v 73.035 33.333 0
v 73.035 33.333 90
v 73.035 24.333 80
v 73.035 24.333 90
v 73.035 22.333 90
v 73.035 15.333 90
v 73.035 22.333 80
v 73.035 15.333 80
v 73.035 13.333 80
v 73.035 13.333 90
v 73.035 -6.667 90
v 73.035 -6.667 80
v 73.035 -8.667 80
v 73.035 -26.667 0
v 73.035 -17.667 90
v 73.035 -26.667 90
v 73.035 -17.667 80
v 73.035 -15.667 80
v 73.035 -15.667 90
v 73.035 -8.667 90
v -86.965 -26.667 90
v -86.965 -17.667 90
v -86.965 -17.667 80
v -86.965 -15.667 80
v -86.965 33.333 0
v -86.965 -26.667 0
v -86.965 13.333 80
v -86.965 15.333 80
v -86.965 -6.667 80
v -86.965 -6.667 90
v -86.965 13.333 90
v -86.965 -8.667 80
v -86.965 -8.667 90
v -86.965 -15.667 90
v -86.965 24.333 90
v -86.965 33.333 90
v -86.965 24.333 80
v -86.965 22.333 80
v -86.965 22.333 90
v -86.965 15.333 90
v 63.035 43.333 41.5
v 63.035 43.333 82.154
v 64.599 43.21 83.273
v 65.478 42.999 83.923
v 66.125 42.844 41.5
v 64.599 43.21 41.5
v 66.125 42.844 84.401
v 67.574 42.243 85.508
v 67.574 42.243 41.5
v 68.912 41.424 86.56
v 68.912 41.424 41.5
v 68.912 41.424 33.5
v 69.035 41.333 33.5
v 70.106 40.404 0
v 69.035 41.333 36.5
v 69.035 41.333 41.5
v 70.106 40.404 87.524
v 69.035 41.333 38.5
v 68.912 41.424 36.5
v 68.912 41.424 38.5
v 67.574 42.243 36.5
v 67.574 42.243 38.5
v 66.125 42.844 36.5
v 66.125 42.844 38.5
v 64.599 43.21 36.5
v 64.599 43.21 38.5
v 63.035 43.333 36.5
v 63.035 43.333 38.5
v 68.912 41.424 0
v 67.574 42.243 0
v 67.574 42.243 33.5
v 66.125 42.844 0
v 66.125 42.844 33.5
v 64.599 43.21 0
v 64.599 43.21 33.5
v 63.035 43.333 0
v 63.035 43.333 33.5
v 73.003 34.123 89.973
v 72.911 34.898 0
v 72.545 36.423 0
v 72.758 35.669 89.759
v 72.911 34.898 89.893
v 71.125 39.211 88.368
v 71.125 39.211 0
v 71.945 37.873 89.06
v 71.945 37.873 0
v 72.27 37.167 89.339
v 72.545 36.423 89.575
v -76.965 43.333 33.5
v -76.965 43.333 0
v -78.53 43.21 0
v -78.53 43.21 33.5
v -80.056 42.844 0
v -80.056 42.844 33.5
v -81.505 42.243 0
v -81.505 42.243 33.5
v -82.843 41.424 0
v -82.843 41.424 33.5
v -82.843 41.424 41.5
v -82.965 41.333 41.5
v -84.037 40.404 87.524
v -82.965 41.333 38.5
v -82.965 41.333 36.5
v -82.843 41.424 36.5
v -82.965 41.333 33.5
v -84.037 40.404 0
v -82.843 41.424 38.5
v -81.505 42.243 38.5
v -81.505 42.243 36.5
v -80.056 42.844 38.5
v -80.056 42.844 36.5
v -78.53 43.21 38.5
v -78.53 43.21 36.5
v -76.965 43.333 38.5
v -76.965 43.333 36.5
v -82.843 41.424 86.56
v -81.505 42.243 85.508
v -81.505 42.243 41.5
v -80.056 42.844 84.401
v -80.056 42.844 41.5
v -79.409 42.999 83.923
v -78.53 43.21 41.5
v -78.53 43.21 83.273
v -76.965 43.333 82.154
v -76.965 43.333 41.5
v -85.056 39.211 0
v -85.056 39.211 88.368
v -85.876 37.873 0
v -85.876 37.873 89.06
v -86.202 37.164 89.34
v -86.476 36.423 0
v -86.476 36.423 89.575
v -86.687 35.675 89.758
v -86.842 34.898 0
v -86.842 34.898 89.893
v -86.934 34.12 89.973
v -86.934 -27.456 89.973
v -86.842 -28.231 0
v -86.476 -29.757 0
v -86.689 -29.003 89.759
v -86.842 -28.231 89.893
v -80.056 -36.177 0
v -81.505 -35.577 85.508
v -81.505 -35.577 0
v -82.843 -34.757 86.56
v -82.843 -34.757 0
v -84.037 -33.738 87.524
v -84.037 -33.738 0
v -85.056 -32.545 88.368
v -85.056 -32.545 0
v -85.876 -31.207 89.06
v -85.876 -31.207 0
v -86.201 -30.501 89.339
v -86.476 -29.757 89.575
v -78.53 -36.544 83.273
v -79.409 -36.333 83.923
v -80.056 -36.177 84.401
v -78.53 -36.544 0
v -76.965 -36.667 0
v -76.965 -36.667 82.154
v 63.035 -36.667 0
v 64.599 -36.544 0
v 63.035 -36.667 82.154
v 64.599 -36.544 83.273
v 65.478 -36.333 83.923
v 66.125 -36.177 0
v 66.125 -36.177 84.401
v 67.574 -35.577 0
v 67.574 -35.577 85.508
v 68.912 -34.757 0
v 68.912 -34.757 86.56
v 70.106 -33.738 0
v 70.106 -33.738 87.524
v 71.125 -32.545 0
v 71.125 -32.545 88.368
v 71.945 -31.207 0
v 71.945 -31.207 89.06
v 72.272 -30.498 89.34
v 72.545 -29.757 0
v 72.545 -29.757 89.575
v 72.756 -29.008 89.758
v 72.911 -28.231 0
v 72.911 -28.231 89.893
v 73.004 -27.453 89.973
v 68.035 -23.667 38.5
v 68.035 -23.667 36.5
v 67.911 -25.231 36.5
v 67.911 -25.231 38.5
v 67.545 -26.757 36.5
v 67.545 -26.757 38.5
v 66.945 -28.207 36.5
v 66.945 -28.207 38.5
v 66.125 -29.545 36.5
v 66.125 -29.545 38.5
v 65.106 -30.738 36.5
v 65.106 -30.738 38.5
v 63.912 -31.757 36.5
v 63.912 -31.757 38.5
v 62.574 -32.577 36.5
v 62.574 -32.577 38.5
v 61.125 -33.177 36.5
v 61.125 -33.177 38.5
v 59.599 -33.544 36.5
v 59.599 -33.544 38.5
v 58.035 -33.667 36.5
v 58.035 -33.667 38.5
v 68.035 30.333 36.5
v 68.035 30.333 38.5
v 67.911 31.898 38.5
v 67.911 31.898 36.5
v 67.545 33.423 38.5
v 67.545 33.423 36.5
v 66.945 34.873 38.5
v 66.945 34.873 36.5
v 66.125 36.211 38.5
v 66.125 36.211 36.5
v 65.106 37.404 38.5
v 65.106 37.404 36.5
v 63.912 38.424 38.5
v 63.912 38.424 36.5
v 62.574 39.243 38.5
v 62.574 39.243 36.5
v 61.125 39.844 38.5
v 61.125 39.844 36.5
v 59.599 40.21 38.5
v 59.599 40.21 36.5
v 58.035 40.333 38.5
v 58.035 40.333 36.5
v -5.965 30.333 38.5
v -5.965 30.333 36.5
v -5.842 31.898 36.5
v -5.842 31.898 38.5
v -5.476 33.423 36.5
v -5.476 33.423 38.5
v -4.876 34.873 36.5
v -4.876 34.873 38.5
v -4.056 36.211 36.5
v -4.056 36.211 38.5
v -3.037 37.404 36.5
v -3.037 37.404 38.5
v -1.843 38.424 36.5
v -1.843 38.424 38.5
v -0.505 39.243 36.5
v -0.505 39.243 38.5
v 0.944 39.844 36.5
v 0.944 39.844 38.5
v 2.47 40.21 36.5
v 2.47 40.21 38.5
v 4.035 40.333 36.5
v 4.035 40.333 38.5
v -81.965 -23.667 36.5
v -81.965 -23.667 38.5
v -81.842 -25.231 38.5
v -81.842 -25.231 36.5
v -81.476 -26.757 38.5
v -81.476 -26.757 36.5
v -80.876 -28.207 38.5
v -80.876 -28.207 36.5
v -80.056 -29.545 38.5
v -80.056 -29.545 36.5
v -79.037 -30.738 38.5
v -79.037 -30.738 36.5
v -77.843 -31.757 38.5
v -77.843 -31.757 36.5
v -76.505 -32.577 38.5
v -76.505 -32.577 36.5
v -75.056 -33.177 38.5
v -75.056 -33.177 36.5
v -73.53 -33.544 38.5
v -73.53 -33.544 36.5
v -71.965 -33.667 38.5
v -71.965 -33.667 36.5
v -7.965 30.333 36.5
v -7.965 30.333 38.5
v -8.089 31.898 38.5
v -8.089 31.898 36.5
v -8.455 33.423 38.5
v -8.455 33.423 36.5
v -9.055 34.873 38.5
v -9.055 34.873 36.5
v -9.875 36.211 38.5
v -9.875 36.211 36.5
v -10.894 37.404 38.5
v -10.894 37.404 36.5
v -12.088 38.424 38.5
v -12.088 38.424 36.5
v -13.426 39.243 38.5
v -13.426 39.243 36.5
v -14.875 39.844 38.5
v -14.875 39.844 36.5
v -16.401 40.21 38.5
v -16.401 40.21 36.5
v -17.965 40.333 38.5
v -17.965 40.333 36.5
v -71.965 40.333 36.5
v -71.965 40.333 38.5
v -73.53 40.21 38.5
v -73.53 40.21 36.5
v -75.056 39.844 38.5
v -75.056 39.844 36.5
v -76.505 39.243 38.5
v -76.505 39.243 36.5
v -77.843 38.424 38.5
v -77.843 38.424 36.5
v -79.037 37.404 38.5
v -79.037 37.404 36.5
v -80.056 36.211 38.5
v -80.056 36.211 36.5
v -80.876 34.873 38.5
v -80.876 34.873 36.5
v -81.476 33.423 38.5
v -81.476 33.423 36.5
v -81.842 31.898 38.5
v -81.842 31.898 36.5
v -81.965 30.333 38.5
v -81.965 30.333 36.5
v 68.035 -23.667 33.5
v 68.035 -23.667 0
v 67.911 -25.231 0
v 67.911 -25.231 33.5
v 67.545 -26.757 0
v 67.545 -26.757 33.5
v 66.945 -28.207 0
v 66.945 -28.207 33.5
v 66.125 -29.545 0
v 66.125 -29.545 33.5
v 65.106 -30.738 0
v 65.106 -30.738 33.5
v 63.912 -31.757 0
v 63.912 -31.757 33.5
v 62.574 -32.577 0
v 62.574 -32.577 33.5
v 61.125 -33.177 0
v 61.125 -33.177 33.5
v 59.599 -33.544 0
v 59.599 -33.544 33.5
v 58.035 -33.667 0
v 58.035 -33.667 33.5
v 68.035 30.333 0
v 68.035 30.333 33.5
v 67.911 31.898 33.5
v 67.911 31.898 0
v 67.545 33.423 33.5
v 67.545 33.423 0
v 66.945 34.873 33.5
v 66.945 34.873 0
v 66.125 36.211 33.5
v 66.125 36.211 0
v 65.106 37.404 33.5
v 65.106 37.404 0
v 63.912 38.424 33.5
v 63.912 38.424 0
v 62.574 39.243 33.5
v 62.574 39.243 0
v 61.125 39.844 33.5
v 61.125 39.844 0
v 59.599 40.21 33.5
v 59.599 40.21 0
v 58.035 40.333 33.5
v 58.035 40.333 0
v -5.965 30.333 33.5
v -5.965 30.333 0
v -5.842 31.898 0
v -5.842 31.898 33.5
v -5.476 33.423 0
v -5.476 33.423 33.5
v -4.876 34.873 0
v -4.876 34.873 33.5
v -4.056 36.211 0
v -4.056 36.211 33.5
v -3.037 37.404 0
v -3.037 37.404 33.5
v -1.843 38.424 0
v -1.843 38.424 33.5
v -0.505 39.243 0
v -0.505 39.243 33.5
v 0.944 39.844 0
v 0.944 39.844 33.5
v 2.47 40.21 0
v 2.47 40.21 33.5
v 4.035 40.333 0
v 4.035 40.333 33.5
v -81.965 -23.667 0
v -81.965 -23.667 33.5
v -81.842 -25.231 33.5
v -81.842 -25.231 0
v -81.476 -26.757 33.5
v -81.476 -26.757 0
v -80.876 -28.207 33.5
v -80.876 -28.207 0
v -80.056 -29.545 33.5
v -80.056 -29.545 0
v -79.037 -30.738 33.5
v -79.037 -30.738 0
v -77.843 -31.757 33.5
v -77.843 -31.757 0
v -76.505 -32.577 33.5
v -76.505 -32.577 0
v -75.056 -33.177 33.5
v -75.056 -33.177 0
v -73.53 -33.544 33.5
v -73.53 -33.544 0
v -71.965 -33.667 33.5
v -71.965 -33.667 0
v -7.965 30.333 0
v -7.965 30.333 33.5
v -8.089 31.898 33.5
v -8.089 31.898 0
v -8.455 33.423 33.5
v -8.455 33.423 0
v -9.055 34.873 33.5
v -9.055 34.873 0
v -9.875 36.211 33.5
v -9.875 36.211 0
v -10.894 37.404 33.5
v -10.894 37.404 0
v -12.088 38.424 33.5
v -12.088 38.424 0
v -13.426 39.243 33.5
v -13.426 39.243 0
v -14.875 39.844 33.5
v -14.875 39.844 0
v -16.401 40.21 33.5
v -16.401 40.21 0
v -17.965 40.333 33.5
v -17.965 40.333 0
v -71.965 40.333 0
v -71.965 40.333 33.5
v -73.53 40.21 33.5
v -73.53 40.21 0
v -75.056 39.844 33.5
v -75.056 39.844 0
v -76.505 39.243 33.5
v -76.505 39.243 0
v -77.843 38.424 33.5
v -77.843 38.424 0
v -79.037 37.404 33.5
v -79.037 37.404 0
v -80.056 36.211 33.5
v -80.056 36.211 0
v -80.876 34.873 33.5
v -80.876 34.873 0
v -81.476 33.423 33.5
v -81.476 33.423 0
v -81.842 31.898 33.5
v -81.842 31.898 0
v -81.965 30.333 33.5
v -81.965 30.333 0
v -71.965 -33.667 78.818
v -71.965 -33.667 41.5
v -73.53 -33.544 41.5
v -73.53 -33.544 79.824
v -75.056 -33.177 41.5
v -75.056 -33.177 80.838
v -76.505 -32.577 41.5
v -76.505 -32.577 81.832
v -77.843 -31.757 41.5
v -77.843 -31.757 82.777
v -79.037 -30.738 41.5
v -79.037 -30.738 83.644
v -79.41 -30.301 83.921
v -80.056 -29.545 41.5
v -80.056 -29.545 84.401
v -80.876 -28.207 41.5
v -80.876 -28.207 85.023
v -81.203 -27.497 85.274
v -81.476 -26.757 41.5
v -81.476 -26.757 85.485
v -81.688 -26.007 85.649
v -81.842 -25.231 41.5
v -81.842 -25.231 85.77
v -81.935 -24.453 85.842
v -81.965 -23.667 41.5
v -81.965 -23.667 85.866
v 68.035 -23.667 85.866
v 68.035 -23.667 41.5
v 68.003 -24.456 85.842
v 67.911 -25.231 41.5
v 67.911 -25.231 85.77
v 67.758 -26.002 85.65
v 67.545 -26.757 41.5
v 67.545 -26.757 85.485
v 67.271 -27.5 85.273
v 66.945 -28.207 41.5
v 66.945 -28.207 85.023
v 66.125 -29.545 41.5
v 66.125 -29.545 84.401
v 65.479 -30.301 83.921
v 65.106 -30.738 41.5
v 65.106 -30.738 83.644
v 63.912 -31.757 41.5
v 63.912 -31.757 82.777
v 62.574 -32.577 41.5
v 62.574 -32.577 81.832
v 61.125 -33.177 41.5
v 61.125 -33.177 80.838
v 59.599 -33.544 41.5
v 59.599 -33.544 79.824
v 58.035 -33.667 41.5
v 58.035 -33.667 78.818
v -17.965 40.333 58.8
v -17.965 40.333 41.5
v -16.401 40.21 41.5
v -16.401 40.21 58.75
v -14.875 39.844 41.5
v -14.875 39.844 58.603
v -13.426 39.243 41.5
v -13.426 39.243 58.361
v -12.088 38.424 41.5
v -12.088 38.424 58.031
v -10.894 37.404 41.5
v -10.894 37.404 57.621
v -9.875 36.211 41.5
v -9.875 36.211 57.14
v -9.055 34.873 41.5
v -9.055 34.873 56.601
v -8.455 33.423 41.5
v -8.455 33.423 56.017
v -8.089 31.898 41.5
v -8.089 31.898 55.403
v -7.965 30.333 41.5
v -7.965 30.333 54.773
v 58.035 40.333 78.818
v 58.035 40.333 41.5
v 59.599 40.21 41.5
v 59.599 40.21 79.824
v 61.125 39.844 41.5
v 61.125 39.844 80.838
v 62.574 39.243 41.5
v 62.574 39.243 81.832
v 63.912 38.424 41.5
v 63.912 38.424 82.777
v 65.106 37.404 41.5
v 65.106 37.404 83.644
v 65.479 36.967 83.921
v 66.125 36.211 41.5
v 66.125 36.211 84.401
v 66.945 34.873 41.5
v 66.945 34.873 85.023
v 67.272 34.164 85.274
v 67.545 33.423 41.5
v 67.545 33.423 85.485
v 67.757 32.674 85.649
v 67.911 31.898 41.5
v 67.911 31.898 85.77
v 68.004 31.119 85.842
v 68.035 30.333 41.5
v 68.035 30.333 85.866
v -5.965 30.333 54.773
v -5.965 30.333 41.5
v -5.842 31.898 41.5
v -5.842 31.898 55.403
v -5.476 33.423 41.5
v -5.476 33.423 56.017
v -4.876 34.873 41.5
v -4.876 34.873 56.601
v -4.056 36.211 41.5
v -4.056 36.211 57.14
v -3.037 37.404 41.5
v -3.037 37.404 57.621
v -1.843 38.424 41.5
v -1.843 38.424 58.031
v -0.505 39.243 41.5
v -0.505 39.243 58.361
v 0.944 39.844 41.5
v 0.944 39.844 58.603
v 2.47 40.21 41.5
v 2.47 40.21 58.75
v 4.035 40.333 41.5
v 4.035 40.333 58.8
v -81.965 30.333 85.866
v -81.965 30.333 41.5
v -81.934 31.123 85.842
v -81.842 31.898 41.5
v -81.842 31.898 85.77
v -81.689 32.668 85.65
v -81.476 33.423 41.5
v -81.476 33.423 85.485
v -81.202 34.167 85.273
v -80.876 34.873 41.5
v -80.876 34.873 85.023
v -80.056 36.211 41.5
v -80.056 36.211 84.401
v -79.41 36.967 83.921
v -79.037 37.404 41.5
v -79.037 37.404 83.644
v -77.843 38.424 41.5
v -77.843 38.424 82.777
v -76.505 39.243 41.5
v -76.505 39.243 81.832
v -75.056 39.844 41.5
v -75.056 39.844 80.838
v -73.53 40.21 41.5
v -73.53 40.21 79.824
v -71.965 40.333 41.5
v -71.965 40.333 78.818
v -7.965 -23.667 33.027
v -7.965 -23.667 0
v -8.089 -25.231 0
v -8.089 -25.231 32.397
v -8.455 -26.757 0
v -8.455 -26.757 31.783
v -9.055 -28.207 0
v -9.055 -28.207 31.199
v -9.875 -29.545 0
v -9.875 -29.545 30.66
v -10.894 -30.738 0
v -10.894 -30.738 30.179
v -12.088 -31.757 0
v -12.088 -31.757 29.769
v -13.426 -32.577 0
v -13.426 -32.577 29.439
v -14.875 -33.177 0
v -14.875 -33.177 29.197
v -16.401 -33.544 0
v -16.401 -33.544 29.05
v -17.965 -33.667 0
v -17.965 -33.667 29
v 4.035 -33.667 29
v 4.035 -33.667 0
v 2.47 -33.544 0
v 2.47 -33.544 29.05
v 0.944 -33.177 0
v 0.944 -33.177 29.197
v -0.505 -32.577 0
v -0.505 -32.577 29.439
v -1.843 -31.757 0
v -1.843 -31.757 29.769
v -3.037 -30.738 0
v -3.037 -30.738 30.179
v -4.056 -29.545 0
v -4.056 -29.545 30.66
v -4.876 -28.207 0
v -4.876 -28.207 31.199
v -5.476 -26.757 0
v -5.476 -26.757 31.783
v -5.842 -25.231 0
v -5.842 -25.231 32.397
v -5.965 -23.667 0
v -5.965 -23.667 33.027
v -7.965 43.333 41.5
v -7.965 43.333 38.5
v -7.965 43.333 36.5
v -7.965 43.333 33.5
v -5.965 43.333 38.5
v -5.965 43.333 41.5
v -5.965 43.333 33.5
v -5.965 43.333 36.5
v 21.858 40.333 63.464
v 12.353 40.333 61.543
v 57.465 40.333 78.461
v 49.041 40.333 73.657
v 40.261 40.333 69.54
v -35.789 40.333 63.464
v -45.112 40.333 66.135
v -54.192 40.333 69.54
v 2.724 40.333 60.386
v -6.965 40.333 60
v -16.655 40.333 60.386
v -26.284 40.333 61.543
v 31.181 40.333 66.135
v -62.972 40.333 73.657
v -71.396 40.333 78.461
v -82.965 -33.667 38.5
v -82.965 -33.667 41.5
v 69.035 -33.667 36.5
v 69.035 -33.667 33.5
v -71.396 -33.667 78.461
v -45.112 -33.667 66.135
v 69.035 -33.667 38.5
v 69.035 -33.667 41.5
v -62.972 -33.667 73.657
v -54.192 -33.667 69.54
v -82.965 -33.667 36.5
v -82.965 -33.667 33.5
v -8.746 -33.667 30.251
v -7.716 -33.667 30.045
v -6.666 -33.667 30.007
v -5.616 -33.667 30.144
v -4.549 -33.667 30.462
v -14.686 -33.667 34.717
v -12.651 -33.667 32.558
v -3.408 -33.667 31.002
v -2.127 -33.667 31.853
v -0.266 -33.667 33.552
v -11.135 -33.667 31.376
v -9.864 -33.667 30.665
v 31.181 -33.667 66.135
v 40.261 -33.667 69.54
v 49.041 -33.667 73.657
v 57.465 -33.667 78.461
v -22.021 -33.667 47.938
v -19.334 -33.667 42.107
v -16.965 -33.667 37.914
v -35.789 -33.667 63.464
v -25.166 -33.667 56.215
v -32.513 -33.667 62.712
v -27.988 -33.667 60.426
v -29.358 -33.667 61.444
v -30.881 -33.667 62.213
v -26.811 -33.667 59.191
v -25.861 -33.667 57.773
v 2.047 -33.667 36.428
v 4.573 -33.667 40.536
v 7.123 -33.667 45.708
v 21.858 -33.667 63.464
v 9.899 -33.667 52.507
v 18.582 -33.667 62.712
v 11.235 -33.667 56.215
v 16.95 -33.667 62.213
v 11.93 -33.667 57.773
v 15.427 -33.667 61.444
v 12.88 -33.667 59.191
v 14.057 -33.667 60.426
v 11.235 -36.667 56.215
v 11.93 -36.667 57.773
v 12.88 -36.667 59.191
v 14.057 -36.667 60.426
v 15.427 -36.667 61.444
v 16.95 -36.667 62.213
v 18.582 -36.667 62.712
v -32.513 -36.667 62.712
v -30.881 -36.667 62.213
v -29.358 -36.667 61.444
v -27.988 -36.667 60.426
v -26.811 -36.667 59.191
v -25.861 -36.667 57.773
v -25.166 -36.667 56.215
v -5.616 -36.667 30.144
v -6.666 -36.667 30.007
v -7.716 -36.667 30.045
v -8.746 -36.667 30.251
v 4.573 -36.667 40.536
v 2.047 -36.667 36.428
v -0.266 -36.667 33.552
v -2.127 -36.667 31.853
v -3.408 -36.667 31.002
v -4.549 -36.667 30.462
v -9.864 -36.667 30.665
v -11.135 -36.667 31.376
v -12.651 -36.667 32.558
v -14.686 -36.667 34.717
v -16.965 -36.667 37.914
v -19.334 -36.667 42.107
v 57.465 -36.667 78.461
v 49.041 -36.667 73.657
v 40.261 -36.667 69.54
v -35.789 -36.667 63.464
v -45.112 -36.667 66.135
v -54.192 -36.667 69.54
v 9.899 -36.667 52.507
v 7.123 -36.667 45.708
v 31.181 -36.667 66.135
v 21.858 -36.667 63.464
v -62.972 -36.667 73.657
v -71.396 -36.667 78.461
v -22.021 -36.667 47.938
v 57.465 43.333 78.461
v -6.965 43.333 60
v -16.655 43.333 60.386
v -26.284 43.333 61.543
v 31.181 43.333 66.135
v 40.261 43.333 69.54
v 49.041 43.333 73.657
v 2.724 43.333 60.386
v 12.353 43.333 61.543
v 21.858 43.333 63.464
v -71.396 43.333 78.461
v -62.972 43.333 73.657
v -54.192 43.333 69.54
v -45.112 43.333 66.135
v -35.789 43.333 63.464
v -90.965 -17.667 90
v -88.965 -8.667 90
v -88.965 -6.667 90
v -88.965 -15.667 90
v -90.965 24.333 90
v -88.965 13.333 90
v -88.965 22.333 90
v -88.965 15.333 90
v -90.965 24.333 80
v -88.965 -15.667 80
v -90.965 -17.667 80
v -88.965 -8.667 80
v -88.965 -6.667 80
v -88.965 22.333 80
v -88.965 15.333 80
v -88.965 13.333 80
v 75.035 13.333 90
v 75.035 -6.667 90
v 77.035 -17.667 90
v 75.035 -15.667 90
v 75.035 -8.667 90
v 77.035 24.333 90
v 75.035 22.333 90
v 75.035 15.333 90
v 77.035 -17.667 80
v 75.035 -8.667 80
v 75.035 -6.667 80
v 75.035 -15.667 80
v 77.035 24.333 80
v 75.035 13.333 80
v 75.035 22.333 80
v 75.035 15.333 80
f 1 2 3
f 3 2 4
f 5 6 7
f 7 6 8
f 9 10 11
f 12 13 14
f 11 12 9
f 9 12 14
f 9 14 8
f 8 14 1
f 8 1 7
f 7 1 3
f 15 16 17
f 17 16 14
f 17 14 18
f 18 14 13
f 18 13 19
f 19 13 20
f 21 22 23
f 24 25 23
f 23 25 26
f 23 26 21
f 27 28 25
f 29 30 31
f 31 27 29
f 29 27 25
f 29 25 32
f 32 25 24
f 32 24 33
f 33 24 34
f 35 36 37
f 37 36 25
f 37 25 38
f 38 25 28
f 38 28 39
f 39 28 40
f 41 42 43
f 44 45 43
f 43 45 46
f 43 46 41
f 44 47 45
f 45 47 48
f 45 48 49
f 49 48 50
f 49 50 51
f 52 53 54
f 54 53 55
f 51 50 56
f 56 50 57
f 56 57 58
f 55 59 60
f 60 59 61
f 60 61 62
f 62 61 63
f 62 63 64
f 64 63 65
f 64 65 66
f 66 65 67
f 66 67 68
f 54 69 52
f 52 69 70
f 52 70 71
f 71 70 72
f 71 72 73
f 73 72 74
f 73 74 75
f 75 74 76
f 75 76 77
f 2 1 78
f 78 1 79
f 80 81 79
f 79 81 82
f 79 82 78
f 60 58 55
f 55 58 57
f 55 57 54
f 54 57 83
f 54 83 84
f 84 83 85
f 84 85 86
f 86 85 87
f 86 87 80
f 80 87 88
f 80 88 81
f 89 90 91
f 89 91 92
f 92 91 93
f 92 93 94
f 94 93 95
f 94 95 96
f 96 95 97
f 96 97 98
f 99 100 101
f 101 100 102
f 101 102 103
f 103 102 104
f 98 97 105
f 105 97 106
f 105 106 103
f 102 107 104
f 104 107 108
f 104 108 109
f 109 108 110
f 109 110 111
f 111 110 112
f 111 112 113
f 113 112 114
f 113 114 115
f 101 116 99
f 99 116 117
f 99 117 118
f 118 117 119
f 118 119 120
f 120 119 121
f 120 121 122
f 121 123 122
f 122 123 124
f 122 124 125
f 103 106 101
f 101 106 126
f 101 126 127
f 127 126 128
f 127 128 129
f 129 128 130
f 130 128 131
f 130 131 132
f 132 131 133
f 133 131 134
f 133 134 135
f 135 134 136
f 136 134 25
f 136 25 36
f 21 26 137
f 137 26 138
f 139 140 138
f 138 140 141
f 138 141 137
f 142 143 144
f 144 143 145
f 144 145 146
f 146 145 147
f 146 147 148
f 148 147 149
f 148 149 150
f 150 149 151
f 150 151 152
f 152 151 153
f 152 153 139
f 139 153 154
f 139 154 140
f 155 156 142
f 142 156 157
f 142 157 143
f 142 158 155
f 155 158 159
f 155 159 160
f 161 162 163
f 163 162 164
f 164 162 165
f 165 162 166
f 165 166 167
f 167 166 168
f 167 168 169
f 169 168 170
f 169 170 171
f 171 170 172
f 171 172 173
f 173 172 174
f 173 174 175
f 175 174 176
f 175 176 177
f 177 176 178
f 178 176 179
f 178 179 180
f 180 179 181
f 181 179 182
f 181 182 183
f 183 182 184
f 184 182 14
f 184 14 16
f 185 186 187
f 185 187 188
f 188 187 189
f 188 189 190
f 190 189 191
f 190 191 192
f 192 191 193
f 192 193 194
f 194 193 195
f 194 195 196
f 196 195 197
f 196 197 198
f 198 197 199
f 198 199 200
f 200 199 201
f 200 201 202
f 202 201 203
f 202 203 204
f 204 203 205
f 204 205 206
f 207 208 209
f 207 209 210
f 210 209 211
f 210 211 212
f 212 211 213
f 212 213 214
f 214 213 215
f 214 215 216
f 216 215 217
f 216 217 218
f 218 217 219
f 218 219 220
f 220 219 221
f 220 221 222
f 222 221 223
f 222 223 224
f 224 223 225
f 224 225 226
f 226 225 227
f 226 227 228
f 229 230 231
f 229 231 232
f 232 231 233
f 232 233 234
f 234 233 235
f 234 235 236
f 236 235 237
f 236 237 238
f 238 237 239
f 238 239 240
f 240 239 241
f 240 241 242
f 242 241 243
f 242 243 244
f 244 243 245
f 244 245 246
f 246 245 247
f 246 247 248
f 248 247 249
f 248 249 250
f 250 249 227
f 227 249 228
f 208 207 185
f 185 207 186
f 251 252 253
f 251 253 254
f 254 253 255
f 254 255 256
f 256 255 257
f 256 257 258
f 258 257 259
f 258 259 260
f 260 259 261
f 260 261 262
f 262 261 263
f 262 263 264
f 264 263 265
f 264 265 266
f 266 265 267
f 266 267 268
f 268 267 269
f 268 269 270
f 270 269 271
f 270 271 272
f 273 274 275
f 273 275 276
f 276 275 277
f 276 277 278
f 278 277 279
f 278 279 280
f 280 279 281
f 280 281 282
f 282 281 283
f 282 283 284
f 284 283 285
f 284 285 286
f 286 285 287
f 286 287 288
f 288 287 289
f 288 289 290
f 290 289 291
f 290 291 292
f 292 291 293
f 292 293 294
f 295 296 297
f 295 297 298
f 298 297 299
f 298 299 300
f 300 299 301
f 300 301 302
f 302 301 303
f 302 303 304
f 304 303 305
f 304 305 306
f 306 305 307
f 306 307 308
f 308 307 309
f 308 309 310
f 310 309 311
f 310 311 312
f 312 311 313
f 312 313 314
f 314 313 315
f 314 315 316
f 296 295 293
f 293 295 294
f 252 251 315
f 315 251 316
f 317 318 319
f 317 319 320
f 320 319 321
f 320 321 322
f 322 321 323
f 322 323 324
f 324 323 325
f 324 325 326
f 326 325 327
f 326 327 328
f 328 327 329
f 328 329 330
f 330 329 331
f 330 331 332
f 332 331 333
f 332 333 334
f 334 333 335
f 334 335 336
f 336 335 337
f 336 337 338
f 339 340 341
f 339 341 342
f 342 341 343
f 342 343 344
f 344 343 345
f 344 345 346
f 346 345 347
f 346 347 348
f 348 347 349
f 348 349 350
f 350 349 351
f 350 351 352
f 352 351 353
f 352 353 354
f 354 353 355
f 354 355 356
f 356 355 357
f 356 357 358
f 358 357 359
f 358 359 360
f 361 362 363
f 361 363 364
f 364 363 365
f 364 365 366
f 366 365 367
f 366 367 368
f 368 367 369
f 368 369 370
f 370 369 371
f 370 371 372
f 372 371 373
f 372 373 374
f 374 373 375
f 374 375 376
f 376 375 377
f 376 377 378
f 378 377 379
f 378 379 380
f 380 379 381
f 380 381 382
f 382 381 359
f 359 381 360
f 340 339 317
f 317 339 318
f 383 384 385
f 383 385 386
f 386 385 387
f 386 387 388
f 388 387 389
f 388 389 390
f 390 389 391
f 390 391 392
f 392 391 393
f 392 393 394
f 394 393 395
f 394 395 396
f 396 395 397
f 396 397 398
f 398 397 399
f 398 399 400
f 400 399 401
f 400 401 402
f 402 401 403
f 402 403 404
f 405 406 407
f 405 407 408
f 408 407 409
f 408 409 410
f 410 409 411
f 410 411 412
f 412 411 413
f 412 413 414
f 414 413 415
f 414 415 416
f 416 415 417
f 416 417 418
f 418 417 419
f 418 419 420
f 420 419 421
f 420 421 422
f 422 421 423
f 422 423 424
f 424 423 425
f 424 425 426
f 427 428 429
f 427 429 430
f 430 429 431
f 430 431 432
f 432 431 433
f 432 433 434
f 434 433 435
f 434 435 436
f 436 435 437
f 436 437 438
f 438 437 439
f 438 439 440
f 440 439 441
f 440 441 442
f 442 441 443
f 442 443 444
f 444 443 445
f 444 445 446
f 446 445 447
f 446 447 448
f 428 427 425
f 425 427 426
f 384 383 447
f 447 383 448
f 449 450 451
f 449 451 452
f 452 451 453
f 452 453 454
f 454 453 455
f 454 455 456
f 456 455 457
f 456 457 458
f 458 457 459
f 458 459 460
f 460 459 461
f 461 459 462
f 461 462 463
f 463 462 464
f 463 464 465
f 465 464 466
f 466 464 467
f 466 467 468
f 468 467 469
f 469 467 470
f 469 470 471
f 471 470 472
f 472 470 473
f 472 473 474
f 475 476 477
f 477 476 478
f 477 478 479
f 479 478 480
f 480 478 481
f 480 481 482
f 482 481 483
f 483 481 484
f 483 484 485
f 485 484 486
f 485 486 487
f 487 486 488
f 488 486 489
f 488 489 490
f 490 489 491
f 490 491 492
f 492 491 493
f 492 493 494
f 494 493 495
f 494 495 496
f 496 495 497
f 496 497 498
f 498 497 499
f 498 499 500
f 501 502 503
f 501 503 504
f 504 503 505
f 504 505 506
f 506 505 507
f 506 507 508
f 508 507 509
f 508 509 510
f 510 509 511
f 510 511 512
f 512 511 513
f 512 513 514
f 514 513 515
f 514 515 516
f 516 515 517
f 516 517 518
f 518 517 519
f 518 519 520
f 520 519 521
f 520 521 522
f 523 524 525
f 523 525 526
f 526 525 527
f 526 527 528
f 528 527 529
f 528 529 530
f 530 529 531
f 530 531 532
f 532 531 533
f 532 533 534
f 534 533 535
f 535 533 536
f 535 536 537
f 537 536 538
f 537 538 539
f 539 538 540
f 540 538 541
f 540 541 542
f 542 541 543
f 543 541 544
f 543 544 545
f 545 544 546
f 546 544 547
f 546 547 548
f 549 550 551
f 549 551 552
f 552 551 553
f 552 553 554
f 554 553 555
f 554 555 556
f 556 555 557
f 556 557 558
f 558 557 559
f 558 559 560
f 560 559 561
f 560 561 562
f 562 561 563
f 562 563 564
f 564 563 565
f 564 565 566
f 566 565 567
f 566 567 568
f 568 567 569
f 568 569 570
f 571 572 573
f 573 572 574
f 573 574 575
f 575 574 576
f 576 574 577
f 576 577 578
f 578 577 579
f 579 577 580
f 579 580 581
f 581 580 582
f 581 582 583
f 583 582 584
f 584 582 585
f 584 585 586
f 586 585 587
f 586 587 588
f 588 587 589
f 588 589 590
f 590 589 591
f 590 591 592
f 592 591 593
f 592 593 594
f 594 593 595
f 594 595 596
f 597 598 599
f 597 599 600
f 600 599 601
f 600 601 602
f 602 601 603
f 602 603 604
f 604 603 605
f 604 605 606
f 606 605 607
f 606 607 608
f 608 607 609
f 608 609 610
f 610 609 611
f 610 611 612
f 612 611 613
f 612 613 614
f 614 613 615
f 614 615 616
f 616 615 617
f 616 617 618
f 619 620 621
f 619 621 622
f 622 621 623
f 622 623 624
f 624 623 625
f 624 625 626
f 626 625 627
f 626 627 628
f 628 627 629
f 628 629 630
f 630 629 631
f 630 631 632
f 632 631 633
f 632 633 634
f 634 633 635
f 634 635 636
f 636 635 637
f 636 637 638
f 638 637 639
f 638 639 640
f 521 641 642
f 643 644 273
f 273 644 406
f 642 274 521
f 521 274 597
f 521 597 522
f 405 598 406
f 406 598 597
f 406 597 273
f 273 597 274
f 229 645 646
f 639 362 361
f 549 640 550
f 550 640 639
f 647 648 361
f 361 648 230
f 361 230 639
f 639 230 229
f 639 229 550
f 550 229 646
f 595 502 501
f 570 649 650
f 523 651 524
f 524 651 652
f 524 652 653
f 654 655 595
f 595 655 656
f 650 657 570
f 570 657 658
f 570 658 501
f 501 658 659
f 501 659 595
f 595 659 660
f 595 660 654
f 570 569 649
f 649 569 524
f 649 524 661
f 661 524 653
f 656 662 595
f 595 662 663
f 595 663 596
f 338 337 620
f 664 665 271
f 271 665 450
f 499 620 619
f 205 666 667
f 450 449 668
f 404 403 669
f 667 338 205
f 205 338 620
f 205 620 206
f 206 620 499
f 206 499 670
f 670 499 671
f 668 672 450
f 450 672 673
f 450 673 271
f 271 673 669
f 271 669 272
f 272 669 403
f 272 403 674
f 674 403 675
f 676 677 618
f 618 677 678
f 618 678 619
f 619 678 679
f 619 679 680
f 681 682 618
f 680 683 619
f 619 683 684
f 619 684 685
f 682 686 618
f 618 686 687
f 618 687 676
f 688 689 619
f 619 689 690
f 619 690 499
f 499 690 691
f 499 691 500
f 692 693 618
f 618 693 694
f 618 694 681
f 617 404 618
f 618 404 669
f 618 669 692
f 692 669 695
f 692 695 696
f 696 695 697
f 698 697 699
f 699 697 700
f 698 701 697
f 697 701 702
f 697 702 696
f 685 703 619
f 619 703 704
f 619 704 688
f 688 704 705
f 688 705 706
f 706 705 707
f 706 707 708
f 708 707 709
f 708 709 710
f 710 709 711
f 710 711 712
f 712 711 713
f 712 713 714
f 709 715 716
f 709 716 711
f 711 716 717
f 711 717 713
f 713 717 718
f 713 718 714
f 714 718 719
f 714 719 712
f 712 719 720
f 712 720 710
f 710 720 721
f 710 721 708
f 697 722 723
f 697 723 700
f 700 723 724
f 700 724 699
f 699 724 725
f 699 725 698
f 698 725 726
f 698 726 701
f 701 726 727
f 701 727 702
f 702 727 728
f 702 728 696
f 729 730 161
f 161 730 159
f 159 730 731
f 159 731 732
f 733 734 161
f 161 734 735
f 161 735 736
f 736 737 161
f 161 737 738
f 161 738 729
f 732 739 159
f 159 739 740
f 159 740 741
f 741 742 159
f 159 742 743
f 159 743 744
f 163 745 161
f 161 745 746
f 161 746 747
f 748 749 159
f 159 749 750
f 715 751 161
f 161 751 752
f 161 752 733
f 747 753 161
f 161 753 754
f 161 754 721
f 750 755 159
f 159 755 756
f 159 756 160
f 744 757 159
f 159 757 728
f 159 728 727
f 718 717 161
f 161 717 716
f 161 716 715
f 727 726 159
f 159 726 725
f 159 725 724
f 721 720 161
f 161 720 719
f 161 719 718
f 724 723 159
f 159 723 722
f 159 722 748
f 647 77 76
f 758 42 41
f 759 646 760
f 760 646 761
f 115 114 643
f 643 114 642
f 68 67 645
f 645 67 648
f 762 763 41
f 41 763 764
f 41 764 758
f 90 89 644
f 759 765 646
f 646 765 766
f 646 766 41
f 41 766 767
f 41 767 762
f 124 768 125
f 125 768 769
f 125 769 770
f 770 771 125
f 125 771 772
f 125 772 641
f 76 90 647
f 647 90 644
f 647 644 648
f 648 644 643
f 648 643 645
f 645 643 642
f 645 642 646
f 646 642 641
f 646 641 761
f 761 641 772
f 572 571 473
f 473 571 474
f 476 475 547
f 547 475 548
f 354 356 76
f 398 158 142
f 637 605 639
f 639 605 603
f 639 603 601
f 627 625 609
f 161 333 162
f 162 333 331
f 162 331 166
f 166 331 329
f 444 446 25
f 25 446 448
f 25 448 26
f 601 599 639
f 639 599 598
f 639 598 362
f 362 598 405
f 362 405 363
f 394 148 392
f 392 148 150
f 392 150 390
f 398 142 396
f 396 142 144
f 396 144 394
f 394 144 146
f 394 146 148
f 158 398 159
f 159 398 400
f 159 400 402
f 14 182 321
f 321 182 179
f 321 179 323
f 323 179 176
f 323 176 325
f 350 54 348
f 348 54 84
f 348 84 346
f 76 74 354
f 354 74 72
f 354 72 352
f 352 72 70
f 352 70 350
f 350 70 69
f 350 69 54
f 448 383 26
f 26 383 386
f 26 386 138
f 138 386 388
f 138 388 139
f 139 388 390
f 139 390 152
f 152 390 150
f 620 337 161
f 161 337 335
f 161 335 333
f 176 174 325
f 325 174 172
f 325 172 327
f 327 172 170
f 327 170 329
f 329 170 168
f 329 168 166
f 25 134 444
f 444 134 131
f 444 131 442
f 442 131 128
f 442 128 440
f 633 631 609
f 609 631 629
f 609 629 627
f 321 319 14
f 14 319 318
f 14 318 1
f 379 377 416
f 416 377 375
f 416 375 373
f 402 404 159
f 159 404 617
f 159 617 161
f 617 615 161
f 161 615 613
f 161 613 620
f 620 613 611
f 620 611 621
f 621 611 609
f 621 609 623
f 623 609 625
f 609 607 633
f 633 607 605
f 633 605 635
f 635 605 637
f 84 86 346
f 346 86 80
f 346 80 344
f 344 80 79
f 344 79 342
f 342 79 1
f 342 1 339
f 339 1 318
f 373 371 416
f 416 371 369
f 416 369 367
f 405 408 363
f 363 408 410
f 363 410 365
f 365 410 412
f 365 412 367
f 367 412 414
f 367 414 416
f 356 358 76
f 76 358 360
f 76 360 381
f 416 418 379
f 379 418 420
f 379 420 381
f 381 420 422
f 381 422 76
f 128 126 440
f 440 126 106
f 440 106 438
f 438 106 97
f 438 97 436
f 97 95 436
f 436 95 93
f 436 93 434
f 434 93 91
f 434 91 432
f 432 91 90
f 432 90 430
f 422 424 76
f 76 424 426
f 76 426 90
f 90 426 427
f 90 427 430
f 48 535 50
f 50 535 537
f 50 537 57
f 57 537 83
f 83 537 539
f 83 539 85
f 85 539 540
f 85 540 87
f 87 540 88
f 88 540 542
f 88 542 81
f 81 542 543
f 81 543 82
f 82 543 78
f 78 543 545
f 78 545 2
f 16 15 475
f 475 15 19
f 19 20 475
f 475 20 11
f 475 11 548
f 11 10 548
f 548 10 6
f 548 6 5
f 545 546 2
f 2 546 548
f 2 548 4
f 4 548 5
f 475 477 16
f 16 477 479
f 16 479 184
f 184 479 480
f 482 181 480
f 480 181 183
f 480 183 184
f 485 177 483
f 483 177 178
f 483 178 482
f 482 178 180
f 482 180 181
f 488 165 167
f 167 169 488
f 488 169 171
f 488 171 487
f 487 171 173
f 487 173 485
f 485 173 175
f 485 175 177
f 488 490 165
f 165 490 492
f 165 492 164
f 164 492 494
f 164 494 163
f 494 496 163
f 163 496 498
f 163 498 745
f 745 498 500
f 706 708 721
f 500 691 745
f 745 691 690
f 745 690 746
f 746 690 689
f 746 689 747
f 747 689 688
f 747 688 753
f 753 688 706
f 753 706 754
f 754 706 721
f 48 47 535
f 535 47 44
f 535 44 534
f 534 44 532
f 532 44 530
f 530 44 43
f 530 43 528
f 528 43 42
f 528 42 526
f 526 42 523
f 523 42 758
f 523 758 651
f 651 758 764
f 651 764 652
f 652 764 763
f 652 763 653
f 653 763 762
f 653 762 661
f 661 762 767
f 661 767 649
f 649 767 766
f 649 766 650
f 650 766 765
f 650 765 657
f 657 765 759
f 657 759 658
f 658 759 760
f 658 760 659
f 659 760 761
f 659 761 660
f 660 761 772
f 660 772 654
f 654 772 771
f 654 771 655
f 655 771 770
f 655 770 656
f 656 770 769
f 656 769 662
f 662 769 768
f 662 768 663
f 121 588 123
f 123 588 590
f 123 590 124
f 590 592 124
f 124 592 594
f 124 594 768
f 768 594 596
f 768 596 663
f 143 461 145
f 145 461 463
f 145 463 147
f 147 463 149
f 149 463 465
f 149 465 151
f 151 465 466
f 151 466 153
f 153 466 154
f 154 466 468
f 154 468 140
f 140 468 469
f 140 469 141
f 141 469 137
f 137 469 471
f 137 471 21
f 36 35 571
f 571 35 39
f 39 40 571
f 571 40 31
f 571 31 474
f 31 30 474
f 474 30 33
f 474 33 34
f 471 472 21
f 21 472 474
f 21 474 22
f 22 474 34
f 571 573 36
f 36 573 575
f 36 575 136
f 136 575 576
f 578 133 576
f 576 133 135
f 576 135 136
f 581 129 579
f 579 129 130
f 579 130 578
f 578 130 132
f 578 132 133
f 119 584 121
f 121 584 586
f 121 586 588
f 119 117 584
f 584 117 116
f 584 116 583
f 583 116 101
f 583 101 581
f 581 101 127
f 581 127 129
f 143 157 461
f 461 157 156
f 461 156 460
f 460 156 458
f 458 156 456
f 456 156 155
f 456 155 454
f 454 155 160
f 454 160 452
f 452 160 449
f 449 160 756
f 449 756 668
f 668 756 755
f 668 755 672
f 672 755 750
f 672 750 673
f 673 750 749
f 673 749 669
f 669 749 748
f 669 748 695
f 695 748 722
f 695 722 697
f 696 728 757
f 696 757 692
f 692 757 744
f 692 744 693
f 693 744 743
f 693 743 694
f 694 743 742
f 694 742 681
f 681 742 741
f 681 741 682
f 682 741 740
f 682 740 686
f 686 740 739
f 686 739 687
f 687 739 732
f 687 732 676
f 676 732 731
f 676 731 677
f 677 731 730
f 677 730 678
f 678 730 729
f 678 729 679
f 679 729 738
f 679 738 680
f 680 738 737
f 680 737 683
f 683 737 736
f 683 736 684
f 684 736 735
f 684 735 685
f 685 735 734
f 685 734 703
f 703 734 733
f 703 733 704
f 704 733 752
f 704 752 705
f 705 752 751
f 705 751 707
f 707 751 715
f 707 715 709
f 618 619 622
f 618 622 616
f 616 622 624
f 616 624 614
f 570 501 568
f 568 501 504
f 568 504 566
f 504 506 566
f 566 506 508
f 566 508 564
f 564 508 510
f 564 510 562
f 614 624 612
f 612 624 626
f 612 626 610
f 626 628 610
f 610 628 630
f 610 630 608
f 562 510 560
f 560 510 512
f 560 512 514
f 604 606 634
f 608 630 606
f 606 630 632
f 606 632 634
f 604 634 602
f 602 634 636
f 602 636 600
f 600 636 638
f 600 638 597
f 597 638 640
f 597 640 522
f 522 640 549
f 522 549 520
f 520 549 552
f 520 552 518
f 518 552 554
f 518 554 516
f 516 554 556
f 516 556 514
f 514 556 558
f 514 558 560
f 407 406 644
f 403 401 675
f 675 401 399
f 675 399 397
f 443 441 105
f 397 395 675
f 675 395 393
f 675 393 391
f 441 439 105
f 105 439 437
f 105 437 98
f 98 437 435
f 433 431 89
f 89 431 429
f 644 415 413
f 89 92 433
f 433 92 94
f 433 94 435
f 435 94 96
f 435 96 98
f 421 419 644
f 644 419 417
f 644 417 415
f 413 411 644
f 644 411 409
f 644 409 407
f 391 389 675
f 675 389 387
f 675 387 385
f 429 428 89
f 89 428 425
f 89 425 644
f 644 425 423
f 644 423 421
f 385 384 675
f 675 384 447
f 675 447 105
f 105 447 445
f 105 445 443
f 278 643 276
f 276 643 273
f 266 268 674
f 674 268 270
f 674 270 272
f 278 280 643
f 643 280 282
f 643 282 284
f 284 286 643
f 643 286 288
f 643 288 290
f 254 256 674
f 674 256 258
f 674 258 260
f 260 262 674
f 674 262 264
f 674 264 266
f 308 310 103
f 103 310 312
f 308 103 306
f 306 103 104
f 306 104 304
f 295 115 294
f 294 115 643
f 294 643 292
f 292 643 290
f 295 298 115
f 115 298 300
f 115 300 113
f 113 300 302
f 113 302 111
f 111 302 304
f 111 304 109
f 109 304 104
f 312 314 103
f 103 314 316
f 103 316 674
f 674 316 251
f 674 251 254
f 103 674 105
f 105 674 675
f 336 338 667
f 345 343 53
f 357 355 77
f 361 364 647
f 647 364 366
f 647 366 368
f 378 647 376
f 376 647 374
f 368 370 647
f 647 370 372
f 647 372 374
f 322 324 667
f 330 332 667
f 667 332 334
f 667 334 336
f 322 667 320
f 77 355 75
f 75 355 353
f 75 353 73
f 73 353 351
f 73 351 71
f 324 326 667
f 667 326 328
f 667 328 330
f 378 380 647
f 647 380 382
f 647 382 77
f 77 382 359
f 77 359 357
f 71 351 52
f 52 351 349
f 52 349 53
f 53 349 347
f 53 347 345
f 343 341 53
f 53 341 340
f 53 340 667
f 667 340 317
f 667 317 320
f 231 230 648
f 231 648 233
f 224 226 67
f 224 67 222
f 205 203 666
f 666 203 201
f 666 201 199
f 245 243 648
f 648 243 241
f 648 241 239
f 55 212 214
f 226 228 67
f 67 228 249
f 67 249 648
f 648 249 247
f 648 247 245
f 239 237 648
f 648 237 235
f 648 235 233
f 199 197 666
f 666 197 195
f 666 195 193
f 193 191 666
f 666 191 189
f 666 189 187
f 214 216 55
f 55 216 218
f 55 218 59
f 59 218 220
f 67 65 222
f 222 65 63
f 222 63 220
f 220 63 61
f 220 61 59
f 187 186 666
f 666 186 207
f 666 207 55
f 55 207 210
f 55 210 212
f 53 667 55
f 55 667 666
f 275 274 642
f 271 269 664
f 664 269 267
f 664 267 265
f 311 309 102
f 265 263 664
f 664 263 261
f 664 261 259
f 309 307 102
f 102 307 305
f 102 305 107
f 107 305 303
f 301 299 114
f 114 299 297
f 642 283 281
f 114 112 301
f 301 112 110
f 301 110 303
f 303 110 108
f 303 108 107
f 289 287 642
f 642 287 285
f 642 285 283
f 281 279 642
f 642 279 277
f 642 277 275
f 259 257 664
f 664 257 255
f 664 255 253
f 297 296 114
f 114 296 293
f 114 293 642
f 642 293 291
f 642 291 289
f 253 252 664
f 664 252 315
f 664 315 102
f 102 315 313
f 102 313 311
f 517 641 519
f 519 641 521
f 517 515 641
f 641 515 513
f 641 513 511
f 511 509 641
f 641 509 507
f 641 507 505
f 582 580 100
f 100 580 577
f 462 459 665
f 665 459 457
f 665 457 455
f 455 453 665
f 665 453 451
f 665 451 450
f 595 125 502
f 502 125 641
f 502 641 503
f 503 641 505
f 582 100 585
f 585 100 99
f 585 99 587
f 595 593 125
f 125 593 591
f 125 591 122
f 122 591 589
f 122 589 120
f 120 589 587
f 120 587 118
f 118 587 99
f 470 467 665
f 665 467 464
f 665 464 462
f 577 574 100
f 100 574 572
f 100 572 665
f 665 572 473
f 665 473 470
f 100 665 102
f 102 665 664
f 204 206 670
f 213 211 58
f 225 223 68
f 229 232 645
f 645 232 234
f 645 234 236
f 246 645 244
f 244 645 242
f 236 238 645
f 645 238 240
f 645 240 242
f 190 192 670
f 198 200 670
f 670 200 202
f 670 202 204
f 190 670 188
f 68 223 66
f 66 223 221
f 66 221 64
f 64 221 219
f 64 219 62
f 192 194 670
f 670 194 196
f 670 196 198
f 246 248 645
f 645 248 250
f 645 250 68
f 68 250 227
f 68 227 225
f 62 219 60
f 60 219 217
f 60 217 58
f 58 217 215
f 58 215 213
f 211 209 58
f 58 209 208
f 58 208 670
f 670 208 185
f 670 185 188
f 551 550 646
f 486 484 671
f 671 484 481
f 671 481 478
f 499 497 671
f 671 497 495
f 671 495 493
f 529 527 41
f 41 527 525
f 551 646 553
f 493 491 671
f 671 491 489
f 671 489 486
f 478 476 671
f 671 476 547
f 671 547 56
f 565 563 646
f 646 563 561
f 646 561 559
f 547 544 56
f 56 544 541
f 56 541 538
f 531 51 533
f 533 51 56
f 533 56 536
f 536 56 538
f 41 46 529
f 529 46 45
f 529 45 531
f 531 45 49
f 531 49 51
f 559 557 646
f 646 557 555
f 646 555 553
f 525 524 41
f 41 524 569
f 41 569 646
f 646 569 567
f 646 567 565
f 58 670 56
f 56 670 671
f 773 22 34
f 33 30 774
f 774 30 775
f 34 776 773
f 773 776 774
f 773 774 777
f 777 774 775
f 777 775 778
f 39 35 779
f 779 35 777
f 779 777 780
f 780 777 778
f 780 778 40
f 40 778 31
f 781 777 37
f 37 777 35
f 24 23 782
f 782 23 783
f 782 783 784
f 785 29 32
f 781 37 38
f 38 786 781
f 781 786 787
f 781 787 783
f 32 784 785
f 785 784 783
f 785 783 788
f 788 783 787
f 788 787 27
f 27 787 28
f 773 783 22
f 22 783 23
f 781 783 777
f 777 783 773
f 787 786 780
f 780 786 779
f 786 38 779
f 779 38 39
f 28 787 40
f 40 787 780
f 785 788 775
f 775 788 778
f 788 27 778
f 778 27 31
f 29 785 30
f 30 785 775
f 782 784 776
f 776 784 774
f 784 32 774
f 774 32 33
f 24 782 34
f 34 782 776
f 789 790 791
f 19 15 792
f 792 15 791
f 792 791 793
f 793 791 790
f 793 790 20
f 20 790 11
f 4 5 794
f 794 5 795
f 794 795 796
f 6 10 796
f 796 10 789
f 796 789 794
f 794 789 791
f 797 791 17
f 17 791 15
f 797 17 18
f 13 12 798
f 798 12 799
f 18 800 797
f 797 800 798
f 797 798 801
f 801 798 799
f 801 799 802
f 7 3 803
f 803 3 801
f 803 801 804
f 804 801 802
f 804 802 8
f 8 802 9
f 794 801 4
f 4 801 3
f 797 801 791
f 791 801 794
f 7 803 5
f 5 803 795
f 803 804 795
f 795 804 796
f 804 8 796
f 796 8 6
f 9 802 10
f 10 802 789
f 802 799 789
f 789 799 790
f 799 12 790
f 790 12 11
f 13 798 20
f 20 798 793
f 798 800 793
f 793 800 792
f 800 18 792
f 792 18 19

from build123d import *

# Parameters (mm, degrees)
ESBO_O1_W                  = 160
ESBO_O1_H                  = 80
RESSALTO_EXTRUS_O1_DEPTH   = 90
ESBO_O2_W                  = 150
ESBO_O2_H                  = 74
CORTE_EXTRUS_O1_DEPTH      = 90
CORTE_EXTRUS_O2_DEPTH      = 90
CORTE_EXTRUS_O3_START      = -3
CORTE_EXTRUS_O3_DEPTH      = 152.536161673
FILETE1_R                  = 10
FILETE2_R                  = 10
RESSALTO_EXTRUS_O3_DEPTH   = 2
ESBO_O14_W                 = 40
ESBO_O14_H                 = 30
RESSALTO_EXTRUS_O10_DEPTH  = 2
FILETE15_R                 = 10
FILETE16_R                 = 10
CORTE_EXTRUS_O8_DEPTH      = 20
CORTE_EXTRUS_O8_DEPTH_BACK = 20
FILETE17_R                 = 10
FILETE18_R                 = 10
FILETE19_R                 = 10
FILETE20_R                 = 10
FILETE21_R                 = 10
FILETE22_R                 = 10
ESBO_O8_W                  = 75
ESBO_O8_H                  = 3
CORTE_EXTRUS_O9_DEPTH      = 77
FILETE24_R                 = 10
FILETE25_R                 = 10
FILETE26_R                 = 10
FILETE27_R                 = 10
ESBO_O9_W                  = 10
ESBO_O9_H                  = 42
RESSALTO_EXTRUS_O11_DEPTH  = 4
ESBO_O17_W                 = 2
ESBO_O17_H                 = 7
ESBO_O17_H_2               = 20
CORTE_EXTRUS_O10_DEPTH     = 10
ESBO_O18_W                 = 10
ESBO_O18_H                 = 42
RESSALTO_EXTRUS_O12_DEPTH  = 4
ESBO_O19_W                 = 2
ESBO_O19_H                 = 7
ESBO_O19_H_2               = 20
CORTE_EXTRUS_O11_DEPTH     = 10


with BuildPart() as part:
    # Esboço1 → Ressalto-extrusão1 (new body)
    with BuildSketch(Plane.XY):
        with Locations((-6.965460526, 3.333333333)):
            Rectangle(ESBO_O1_W, ESBO_O1_H)
    extrude(amount=RESSALTO_EXTRUS_O1_DEPTH)

    # Esboço2 → Corte-extrusão1 (cut)
    with BuildSketch(Plane.XY.offset(90)):
        with Locations((-6.965460526, 3.333333333)):
            Rectangle(ESBO_O2_W, ESBO_O2_H)
    extrude(amount=-CORTE_EXTRUS_O1_DEPTH, mode=Mode.SUBTRACT)

    # Esboço3 → Corte-extrusão2 (cut)
    with BuildSketch(Plane(origin=(0, 43.333333333, 0), x_dir=(1, 0, 0), z_dir=(0, 1, 0))):
        with BuildLine():
            ThreePointArc((-6.965460526, -60), (-49.685479253, -67.746616729), (-86.965460526, -90))
            Line((-86.965460526, -90), (-6.965460526, -90))
            Line((-6.965460526, -90), (-6.965460526, -60))
        make_face()
        with BuildLine():
            Line((-6.965460526, -60), (-6.965460526, -90))
            Line((-6.965460526, -90), (73.034539474, -90))
            ThreePointArc((73.034539474, -90), (35.7545582, -67.746616729), (-6.965460526, -60))
        make_face()
    extrude(amount=-CORTE_EXTRUS_O2_DEPTH, mode=Mode.SUBTRACT)

    # Esboço5 → Corte-extrusão3 (cut, through all)
    with BuildSketch(Plane.XZ.offset(36.666666667).offset(CORTE_EXTRUS_O3_START)):
        with BuildLine():
            ThreePointArc((13.034539474, 61.655093151), (-6.965460526, 60), (-26.965460526, 61.655093151))
            add(Edge.make_bspline(
                [(-26.965460526, 61.655093151), (-6.965460526, -1.655093151), (13.034539474, 61.655093151)],
                knots=[0, 0, 0, 1, 1, 1], degree=2))
        make_face()
    extrude(amount=CORTE_EXTRUS_O3_DEPTH, mode=Mode.SUBTRACT)

    # Filete1
    filete1_edges = [part.edges().sort_by_distance(p)[0] for p in [
        (-26.965460526, -35.166666667, 61.655093151),
    ]]
    fillet(filete1_edges, radius=FILETE1_R)

    # Filete2
    filete2_edges = [part.edges().sort_by_distance(p)[0] for p in [
        (13.034539474, -35.166666667, 61.655093151),
    ]]
    fillet(filete2_edges, radius=FILETE2_R)

    # Esboço7 → Ressalto-extrusão3 (add)
    with BuildSketch(Plane.ZY.offset(5.965460526)):
        Polygon((60, 43.333333333), (0, 43.333333333), (0, -36.666666667), (28, -36.666666667), align=None)
    extrude(amount=RESSALTO_EXTRUS_O3_DEPTH)

    # Esboço14 → Ressalto-extrusão10 (add)
    with BuildSketch(Plane.ZY.offset(5.965460526)):
        with Locations((20, -18.666666667)):
            Rectangle(ESBO_O14_W, ESBO_O14_H)
    extrude(amount=RESSALTO_EXTRUS_O10_DEPTH)

    # Filete15
    # the kernel refuses this fillet: 10 mm, written as the material it adds along each edge
    with BuildSketch(Plane(origin=(-5.965460526, -33.666666667, 0), x_dir=(0, 1, 0), z_dir=(0, 0, 1))) as filete15_piece_1_section:
        with BuildLine():
            CenterArc((FILETE15_R, -FILETE15_R), FILETE15_R, 90, 90)
            Line((0, -FILETE15_R), (0, 0))
            Line((0, 0), (FILETE15_R, 0))
        make_face()
    filete15_piece_1 = extrude(amount=55.079137733, mode=Mode.PRIVATE)
    filete15_piece_1 = split(filete15_piece_1, bisect_by=Plane(origin=(-3.65687296, -31.473045743, 40), z_dir=(0, 0, -1)), keep=Keep.TOP, mode=Mode.PRIVATE)
    add(filete15_piece_1)

    # Filete16
    # the kernel refuses this fillet: 10 mm, written as the material it adds along each edge
    with BuildSketch(Plane(origin=(-7.965460526, -33.666666667, 55.079137733), x_dir=(-1, 0, 0), z_dir=(0, 0, -1))) as filete16_piece_1_section:
        with BuildLine():
            CenterArc((FILETE16_R, FILETE16_R), FILETE16_R, 180, 90)
            Line((0, FILETE16_R), (0, 0))
            Line((0, 0), (FILETE16_R, 0))
        make_face()
    filete16_piece_1 = extrude(amount=55.079137733, mode=Mode.PRIVATE)
    filete16_piece_1 = split(filete16_piece_1, bisect_by=Plane(origin=(-9.937156606, -31.292891496, 40), z_dir=(0, 0, -1)), keep=Keep.TOP, mode=Mode.PRIVATE)
    add(filete16_piece_1)

    # Esboço16 → Corte-extrusão8 (cut, two sides: drawn at the far end of the back side and taken through both)
    with BuildSketch(Plane.ZY.offset(5.965460526).offset(-CORTE_EXTRUS_O8_DEPTH_BACK)):
        Polygon((29, -33.666666667), (58.8, 40.333333333), (60, -33.666666667), align=None)
    extrude(amount=CORTE_EXTRUS_O8_DEPTH + CORTE_EXTRUS_O8_DEPTH_BACK, mode=Mode.SUBTRACT)

    # Filete17
    filete17_edges = [part.edges().sort_by_distance(p)[0] for p in [
        (-81.965460526, 40.333333333, 42.932973789),
    ]]
    fillet(filete17_edges, radius=FILETE17_R)

    # Filete18
    # the kernel refuses this fillet: 10 mm, written as the material it adds along each edge
    with BuildSketch(Plane(origin=(-5.965460526, 40.333333333, 83.8), x_dir=(1, 0, 0), z_dir=(0, 0, -1))) as filete18_piece_1_section:
        with BuildLine():
            CenterArc((FILETE18_R, FILETE18_R), FILETE18_R, 180, 90)
            Line((0, FILETE18_R), (0, 0))
            Line((0, 0), (FILETE18_R, 0))
        make_face()
    filete18_piece_1 = extrude(amount=83.8, mode=Mode.PRIVATE)
    filete18_piece_1 = split(filete18_piece_1, bisect_by=Plane(origin=(-3.682408993, 28.070036468, 53.861537208), z_dir=(0, 0.37355092292184666, -0.927609674369687)), keep=Keep.TOP, mode=Mode.PRIVATE)
    add(filete18_piece_1)

    # Filete19
    filete19_edges = [part.edges().sort_by_distance(p)[0] for p in [
        (68.034539474, 40.333333333, 42.932973789),
    ]]
    fillet(filete19_edges, radius=FILETE19_R)

    # Filete20
    # the kernel refuses this fillet: 10 mm, written as the material it adds along each edge
    with BuildSketch(Plane(origin=(-7.965460526, 40.333333333, 83.8), x_dir=(-1, 0, 0), z_dir=(0, 0, -1))) as filete20_piece_1_section:
        with BuildLine():
            CenterArc((FILETE20_R, -FILETE20_R), FILETE20_R, 90, 90)
            Line((0, -FILETE20_R), (0, 0))
            Line((0, 0), (FILETE20_R, 0))
        make_face()
    filete20_piece_1 = extrude(amount=83.8, mode=Mode.PRIVATE)
    filete20_piece_1 = split(filete20_piece_1, bisect_by=Plane(origin=(-10.248512059, 28.070036468, 53.861537208), z_dir=(0, 0.37355092292187014, -0.9276096743696776)), keep=Keep.TOP, mode=Mode.PRIVATE)
    add(filete20_piece_1)

    # Filete21
    filete21_edges = [part.edges().sort_by_distance(p)[0] for p in [
        (68.034539474, -33.666666667, 42.932973789),
    ]]
    fillet(filete21_edges, radius=FILETE21_R)

    # Filete22
    filete22_edges = [part.edges().sort_by_distance(p)[0] for p in [
        (-81.965460526, -33.666666667, 42.932973789),
    ]]
    fillet(filete22_edges, radius=FILETE22_R)

    # Esboço8 → Corte-extrusão9 (cut)
    with BuildSketch(Plane(origin=(0, 43.333333333, 0), x_dir=(1, 0, 0), z_dir=(0, 1, 0))):
        with Locations((-45.465460526, -35)):
            Rectangle(ESBO_O8_W, ESBO_O8_H)
        with Locations((31.534539474, -35)):
            Rectangle(ESBO_O8_W, ESBO_O8_H)
        with Locations((-45.465460526, -40)):
            Rectangle(ESBO_O8_W, ESBO_O8_H)
        with Locations((31.534539474, -40)):
            Rectangle(ESBO_O8_W, ESBO_O8_H)
    extrude(amount=-CORTE_EXTRUS_O9_DEPTH, mode=Mode.SUBTRACT)

    # Filete24
    filete24_edges = [part.edges().sort_by_distance(p)[0] for p in [
        (73.034539474, -36.666666667, 45),
    ]]
    fillet(filete24_edges, radius=FILETE24_R)

    # Filete25
    filete25_edges = [part.edges().sort_by_distance(p)[0] for p in [
        (-86.965460526, -36.666666667, 45),
    ]]
    fillet(filete25_edges, radius=FILETE25_R)

    # Filete26
    # the kernel refuses this fillet: 10 mm, written as the material it takes off along each edge
    with BuildSketch(Plane(origin=(-86.965460526, 43.333333333, -25), x_dir=(0, -1, 0), z_dir=(0, 0, 1))) as filete26_piece_1:
        with BuildLine():
            CenterArc((FILETE26_R, FILETE26_R), FILETE26_R, 180, 90)
            Line((0, FILETE26_R), (0, 0))
            Line((0, 0), (FILETE26_R, 0))
        make_face()
    extrude(amount=140, mode=Mode.SUBTRACT)

    # Filete27
    # the kernel refuses this fillet: 10 mm, written as the material it takes off along each edge
    with BuildSketch(Plane(origin=(73.034539474, 43.333333333, -25), x_dir=(-1, 0, 0), z_dir=(0, 0, 1))) as filete27_piece_1:
        with BuildLine():
            CenterArc((FILETE27_R, FILETE27_R), FILETE27_R, 180, 90)
            Line((0, FILETE27_R), (0, 0))
            Line((0, 0), (FILETE27_R, 0))
        make_face()
    extrude(amount=140, mode=Mode.SUBTRACT)

    # Esboço9 → Ressalto-extrusão11 (add)
    with BuildSketch(Plane.ZY.offset(86.965460526)):
        with Locations((85, 3.333333333)):
            Rectangle(ESBO_O9_W, ESBO_O9_H)
    extrude(amount=RESSALTO_EXTRUS_O11_DEPTH)

    # Esboço17 → Corte-extrusão10 (cut)
    with BuildSketch(Plane.XY.offset(90)):
        with Locations((-87.965460526, 18.833333333)):
            Rectangle(ESBO_O17_W, ESBO_O17_H)
        with Locations((-87.965460526, 3.333333333)):
            Rectangle(ESBO_O17_W, ESBO_O17_H_2)
        with Locations((-87.965460526, -12.166666667)):
            Rectangle(ESBO_O17_W, ESBO_O17_H)
    extrude(amount=-CORTE_EXTRUS_O10_DEPTH, mode=Mode.SUBTRACT)

    # Esboço18 → Ressalto-extrusão12 (add)
    with BuildSketch(Plane(origin=(73.034539474, 0, 0), x_dir=(0, 0, -1), z_dir=(1, 0, 0))):
        with Locations((-85, 3.333333333)):
            Rectangle(ESBO_O18_W, ESBO_O18_H)
    extrude(amount=RESSALTO_EXTRUS_O12_DEPTH)

    # Esboço19 → Corte-extrusão11 (cut)
    with BuildSketch(Plane.XY.offset(90)):
        with Locations((74.034539474, 18.833333333)):
            Rectangle(ESBO_O19_W, ESBO_O19_H)
        with Locations((74.034539474, 3.333333333)):
            Rectangle(ESBO_O19_W, ESBO_O19_H_2)
        with Locations((74.034539474, -12.166666667)):
            Rectangle(ESBO_O19_W, ESBO_O19_H)
    extrude(amount=-CORTE_EXTRUS_O11_DEPTH, mode=Mode.SUBTRACT)


solid = part.part
